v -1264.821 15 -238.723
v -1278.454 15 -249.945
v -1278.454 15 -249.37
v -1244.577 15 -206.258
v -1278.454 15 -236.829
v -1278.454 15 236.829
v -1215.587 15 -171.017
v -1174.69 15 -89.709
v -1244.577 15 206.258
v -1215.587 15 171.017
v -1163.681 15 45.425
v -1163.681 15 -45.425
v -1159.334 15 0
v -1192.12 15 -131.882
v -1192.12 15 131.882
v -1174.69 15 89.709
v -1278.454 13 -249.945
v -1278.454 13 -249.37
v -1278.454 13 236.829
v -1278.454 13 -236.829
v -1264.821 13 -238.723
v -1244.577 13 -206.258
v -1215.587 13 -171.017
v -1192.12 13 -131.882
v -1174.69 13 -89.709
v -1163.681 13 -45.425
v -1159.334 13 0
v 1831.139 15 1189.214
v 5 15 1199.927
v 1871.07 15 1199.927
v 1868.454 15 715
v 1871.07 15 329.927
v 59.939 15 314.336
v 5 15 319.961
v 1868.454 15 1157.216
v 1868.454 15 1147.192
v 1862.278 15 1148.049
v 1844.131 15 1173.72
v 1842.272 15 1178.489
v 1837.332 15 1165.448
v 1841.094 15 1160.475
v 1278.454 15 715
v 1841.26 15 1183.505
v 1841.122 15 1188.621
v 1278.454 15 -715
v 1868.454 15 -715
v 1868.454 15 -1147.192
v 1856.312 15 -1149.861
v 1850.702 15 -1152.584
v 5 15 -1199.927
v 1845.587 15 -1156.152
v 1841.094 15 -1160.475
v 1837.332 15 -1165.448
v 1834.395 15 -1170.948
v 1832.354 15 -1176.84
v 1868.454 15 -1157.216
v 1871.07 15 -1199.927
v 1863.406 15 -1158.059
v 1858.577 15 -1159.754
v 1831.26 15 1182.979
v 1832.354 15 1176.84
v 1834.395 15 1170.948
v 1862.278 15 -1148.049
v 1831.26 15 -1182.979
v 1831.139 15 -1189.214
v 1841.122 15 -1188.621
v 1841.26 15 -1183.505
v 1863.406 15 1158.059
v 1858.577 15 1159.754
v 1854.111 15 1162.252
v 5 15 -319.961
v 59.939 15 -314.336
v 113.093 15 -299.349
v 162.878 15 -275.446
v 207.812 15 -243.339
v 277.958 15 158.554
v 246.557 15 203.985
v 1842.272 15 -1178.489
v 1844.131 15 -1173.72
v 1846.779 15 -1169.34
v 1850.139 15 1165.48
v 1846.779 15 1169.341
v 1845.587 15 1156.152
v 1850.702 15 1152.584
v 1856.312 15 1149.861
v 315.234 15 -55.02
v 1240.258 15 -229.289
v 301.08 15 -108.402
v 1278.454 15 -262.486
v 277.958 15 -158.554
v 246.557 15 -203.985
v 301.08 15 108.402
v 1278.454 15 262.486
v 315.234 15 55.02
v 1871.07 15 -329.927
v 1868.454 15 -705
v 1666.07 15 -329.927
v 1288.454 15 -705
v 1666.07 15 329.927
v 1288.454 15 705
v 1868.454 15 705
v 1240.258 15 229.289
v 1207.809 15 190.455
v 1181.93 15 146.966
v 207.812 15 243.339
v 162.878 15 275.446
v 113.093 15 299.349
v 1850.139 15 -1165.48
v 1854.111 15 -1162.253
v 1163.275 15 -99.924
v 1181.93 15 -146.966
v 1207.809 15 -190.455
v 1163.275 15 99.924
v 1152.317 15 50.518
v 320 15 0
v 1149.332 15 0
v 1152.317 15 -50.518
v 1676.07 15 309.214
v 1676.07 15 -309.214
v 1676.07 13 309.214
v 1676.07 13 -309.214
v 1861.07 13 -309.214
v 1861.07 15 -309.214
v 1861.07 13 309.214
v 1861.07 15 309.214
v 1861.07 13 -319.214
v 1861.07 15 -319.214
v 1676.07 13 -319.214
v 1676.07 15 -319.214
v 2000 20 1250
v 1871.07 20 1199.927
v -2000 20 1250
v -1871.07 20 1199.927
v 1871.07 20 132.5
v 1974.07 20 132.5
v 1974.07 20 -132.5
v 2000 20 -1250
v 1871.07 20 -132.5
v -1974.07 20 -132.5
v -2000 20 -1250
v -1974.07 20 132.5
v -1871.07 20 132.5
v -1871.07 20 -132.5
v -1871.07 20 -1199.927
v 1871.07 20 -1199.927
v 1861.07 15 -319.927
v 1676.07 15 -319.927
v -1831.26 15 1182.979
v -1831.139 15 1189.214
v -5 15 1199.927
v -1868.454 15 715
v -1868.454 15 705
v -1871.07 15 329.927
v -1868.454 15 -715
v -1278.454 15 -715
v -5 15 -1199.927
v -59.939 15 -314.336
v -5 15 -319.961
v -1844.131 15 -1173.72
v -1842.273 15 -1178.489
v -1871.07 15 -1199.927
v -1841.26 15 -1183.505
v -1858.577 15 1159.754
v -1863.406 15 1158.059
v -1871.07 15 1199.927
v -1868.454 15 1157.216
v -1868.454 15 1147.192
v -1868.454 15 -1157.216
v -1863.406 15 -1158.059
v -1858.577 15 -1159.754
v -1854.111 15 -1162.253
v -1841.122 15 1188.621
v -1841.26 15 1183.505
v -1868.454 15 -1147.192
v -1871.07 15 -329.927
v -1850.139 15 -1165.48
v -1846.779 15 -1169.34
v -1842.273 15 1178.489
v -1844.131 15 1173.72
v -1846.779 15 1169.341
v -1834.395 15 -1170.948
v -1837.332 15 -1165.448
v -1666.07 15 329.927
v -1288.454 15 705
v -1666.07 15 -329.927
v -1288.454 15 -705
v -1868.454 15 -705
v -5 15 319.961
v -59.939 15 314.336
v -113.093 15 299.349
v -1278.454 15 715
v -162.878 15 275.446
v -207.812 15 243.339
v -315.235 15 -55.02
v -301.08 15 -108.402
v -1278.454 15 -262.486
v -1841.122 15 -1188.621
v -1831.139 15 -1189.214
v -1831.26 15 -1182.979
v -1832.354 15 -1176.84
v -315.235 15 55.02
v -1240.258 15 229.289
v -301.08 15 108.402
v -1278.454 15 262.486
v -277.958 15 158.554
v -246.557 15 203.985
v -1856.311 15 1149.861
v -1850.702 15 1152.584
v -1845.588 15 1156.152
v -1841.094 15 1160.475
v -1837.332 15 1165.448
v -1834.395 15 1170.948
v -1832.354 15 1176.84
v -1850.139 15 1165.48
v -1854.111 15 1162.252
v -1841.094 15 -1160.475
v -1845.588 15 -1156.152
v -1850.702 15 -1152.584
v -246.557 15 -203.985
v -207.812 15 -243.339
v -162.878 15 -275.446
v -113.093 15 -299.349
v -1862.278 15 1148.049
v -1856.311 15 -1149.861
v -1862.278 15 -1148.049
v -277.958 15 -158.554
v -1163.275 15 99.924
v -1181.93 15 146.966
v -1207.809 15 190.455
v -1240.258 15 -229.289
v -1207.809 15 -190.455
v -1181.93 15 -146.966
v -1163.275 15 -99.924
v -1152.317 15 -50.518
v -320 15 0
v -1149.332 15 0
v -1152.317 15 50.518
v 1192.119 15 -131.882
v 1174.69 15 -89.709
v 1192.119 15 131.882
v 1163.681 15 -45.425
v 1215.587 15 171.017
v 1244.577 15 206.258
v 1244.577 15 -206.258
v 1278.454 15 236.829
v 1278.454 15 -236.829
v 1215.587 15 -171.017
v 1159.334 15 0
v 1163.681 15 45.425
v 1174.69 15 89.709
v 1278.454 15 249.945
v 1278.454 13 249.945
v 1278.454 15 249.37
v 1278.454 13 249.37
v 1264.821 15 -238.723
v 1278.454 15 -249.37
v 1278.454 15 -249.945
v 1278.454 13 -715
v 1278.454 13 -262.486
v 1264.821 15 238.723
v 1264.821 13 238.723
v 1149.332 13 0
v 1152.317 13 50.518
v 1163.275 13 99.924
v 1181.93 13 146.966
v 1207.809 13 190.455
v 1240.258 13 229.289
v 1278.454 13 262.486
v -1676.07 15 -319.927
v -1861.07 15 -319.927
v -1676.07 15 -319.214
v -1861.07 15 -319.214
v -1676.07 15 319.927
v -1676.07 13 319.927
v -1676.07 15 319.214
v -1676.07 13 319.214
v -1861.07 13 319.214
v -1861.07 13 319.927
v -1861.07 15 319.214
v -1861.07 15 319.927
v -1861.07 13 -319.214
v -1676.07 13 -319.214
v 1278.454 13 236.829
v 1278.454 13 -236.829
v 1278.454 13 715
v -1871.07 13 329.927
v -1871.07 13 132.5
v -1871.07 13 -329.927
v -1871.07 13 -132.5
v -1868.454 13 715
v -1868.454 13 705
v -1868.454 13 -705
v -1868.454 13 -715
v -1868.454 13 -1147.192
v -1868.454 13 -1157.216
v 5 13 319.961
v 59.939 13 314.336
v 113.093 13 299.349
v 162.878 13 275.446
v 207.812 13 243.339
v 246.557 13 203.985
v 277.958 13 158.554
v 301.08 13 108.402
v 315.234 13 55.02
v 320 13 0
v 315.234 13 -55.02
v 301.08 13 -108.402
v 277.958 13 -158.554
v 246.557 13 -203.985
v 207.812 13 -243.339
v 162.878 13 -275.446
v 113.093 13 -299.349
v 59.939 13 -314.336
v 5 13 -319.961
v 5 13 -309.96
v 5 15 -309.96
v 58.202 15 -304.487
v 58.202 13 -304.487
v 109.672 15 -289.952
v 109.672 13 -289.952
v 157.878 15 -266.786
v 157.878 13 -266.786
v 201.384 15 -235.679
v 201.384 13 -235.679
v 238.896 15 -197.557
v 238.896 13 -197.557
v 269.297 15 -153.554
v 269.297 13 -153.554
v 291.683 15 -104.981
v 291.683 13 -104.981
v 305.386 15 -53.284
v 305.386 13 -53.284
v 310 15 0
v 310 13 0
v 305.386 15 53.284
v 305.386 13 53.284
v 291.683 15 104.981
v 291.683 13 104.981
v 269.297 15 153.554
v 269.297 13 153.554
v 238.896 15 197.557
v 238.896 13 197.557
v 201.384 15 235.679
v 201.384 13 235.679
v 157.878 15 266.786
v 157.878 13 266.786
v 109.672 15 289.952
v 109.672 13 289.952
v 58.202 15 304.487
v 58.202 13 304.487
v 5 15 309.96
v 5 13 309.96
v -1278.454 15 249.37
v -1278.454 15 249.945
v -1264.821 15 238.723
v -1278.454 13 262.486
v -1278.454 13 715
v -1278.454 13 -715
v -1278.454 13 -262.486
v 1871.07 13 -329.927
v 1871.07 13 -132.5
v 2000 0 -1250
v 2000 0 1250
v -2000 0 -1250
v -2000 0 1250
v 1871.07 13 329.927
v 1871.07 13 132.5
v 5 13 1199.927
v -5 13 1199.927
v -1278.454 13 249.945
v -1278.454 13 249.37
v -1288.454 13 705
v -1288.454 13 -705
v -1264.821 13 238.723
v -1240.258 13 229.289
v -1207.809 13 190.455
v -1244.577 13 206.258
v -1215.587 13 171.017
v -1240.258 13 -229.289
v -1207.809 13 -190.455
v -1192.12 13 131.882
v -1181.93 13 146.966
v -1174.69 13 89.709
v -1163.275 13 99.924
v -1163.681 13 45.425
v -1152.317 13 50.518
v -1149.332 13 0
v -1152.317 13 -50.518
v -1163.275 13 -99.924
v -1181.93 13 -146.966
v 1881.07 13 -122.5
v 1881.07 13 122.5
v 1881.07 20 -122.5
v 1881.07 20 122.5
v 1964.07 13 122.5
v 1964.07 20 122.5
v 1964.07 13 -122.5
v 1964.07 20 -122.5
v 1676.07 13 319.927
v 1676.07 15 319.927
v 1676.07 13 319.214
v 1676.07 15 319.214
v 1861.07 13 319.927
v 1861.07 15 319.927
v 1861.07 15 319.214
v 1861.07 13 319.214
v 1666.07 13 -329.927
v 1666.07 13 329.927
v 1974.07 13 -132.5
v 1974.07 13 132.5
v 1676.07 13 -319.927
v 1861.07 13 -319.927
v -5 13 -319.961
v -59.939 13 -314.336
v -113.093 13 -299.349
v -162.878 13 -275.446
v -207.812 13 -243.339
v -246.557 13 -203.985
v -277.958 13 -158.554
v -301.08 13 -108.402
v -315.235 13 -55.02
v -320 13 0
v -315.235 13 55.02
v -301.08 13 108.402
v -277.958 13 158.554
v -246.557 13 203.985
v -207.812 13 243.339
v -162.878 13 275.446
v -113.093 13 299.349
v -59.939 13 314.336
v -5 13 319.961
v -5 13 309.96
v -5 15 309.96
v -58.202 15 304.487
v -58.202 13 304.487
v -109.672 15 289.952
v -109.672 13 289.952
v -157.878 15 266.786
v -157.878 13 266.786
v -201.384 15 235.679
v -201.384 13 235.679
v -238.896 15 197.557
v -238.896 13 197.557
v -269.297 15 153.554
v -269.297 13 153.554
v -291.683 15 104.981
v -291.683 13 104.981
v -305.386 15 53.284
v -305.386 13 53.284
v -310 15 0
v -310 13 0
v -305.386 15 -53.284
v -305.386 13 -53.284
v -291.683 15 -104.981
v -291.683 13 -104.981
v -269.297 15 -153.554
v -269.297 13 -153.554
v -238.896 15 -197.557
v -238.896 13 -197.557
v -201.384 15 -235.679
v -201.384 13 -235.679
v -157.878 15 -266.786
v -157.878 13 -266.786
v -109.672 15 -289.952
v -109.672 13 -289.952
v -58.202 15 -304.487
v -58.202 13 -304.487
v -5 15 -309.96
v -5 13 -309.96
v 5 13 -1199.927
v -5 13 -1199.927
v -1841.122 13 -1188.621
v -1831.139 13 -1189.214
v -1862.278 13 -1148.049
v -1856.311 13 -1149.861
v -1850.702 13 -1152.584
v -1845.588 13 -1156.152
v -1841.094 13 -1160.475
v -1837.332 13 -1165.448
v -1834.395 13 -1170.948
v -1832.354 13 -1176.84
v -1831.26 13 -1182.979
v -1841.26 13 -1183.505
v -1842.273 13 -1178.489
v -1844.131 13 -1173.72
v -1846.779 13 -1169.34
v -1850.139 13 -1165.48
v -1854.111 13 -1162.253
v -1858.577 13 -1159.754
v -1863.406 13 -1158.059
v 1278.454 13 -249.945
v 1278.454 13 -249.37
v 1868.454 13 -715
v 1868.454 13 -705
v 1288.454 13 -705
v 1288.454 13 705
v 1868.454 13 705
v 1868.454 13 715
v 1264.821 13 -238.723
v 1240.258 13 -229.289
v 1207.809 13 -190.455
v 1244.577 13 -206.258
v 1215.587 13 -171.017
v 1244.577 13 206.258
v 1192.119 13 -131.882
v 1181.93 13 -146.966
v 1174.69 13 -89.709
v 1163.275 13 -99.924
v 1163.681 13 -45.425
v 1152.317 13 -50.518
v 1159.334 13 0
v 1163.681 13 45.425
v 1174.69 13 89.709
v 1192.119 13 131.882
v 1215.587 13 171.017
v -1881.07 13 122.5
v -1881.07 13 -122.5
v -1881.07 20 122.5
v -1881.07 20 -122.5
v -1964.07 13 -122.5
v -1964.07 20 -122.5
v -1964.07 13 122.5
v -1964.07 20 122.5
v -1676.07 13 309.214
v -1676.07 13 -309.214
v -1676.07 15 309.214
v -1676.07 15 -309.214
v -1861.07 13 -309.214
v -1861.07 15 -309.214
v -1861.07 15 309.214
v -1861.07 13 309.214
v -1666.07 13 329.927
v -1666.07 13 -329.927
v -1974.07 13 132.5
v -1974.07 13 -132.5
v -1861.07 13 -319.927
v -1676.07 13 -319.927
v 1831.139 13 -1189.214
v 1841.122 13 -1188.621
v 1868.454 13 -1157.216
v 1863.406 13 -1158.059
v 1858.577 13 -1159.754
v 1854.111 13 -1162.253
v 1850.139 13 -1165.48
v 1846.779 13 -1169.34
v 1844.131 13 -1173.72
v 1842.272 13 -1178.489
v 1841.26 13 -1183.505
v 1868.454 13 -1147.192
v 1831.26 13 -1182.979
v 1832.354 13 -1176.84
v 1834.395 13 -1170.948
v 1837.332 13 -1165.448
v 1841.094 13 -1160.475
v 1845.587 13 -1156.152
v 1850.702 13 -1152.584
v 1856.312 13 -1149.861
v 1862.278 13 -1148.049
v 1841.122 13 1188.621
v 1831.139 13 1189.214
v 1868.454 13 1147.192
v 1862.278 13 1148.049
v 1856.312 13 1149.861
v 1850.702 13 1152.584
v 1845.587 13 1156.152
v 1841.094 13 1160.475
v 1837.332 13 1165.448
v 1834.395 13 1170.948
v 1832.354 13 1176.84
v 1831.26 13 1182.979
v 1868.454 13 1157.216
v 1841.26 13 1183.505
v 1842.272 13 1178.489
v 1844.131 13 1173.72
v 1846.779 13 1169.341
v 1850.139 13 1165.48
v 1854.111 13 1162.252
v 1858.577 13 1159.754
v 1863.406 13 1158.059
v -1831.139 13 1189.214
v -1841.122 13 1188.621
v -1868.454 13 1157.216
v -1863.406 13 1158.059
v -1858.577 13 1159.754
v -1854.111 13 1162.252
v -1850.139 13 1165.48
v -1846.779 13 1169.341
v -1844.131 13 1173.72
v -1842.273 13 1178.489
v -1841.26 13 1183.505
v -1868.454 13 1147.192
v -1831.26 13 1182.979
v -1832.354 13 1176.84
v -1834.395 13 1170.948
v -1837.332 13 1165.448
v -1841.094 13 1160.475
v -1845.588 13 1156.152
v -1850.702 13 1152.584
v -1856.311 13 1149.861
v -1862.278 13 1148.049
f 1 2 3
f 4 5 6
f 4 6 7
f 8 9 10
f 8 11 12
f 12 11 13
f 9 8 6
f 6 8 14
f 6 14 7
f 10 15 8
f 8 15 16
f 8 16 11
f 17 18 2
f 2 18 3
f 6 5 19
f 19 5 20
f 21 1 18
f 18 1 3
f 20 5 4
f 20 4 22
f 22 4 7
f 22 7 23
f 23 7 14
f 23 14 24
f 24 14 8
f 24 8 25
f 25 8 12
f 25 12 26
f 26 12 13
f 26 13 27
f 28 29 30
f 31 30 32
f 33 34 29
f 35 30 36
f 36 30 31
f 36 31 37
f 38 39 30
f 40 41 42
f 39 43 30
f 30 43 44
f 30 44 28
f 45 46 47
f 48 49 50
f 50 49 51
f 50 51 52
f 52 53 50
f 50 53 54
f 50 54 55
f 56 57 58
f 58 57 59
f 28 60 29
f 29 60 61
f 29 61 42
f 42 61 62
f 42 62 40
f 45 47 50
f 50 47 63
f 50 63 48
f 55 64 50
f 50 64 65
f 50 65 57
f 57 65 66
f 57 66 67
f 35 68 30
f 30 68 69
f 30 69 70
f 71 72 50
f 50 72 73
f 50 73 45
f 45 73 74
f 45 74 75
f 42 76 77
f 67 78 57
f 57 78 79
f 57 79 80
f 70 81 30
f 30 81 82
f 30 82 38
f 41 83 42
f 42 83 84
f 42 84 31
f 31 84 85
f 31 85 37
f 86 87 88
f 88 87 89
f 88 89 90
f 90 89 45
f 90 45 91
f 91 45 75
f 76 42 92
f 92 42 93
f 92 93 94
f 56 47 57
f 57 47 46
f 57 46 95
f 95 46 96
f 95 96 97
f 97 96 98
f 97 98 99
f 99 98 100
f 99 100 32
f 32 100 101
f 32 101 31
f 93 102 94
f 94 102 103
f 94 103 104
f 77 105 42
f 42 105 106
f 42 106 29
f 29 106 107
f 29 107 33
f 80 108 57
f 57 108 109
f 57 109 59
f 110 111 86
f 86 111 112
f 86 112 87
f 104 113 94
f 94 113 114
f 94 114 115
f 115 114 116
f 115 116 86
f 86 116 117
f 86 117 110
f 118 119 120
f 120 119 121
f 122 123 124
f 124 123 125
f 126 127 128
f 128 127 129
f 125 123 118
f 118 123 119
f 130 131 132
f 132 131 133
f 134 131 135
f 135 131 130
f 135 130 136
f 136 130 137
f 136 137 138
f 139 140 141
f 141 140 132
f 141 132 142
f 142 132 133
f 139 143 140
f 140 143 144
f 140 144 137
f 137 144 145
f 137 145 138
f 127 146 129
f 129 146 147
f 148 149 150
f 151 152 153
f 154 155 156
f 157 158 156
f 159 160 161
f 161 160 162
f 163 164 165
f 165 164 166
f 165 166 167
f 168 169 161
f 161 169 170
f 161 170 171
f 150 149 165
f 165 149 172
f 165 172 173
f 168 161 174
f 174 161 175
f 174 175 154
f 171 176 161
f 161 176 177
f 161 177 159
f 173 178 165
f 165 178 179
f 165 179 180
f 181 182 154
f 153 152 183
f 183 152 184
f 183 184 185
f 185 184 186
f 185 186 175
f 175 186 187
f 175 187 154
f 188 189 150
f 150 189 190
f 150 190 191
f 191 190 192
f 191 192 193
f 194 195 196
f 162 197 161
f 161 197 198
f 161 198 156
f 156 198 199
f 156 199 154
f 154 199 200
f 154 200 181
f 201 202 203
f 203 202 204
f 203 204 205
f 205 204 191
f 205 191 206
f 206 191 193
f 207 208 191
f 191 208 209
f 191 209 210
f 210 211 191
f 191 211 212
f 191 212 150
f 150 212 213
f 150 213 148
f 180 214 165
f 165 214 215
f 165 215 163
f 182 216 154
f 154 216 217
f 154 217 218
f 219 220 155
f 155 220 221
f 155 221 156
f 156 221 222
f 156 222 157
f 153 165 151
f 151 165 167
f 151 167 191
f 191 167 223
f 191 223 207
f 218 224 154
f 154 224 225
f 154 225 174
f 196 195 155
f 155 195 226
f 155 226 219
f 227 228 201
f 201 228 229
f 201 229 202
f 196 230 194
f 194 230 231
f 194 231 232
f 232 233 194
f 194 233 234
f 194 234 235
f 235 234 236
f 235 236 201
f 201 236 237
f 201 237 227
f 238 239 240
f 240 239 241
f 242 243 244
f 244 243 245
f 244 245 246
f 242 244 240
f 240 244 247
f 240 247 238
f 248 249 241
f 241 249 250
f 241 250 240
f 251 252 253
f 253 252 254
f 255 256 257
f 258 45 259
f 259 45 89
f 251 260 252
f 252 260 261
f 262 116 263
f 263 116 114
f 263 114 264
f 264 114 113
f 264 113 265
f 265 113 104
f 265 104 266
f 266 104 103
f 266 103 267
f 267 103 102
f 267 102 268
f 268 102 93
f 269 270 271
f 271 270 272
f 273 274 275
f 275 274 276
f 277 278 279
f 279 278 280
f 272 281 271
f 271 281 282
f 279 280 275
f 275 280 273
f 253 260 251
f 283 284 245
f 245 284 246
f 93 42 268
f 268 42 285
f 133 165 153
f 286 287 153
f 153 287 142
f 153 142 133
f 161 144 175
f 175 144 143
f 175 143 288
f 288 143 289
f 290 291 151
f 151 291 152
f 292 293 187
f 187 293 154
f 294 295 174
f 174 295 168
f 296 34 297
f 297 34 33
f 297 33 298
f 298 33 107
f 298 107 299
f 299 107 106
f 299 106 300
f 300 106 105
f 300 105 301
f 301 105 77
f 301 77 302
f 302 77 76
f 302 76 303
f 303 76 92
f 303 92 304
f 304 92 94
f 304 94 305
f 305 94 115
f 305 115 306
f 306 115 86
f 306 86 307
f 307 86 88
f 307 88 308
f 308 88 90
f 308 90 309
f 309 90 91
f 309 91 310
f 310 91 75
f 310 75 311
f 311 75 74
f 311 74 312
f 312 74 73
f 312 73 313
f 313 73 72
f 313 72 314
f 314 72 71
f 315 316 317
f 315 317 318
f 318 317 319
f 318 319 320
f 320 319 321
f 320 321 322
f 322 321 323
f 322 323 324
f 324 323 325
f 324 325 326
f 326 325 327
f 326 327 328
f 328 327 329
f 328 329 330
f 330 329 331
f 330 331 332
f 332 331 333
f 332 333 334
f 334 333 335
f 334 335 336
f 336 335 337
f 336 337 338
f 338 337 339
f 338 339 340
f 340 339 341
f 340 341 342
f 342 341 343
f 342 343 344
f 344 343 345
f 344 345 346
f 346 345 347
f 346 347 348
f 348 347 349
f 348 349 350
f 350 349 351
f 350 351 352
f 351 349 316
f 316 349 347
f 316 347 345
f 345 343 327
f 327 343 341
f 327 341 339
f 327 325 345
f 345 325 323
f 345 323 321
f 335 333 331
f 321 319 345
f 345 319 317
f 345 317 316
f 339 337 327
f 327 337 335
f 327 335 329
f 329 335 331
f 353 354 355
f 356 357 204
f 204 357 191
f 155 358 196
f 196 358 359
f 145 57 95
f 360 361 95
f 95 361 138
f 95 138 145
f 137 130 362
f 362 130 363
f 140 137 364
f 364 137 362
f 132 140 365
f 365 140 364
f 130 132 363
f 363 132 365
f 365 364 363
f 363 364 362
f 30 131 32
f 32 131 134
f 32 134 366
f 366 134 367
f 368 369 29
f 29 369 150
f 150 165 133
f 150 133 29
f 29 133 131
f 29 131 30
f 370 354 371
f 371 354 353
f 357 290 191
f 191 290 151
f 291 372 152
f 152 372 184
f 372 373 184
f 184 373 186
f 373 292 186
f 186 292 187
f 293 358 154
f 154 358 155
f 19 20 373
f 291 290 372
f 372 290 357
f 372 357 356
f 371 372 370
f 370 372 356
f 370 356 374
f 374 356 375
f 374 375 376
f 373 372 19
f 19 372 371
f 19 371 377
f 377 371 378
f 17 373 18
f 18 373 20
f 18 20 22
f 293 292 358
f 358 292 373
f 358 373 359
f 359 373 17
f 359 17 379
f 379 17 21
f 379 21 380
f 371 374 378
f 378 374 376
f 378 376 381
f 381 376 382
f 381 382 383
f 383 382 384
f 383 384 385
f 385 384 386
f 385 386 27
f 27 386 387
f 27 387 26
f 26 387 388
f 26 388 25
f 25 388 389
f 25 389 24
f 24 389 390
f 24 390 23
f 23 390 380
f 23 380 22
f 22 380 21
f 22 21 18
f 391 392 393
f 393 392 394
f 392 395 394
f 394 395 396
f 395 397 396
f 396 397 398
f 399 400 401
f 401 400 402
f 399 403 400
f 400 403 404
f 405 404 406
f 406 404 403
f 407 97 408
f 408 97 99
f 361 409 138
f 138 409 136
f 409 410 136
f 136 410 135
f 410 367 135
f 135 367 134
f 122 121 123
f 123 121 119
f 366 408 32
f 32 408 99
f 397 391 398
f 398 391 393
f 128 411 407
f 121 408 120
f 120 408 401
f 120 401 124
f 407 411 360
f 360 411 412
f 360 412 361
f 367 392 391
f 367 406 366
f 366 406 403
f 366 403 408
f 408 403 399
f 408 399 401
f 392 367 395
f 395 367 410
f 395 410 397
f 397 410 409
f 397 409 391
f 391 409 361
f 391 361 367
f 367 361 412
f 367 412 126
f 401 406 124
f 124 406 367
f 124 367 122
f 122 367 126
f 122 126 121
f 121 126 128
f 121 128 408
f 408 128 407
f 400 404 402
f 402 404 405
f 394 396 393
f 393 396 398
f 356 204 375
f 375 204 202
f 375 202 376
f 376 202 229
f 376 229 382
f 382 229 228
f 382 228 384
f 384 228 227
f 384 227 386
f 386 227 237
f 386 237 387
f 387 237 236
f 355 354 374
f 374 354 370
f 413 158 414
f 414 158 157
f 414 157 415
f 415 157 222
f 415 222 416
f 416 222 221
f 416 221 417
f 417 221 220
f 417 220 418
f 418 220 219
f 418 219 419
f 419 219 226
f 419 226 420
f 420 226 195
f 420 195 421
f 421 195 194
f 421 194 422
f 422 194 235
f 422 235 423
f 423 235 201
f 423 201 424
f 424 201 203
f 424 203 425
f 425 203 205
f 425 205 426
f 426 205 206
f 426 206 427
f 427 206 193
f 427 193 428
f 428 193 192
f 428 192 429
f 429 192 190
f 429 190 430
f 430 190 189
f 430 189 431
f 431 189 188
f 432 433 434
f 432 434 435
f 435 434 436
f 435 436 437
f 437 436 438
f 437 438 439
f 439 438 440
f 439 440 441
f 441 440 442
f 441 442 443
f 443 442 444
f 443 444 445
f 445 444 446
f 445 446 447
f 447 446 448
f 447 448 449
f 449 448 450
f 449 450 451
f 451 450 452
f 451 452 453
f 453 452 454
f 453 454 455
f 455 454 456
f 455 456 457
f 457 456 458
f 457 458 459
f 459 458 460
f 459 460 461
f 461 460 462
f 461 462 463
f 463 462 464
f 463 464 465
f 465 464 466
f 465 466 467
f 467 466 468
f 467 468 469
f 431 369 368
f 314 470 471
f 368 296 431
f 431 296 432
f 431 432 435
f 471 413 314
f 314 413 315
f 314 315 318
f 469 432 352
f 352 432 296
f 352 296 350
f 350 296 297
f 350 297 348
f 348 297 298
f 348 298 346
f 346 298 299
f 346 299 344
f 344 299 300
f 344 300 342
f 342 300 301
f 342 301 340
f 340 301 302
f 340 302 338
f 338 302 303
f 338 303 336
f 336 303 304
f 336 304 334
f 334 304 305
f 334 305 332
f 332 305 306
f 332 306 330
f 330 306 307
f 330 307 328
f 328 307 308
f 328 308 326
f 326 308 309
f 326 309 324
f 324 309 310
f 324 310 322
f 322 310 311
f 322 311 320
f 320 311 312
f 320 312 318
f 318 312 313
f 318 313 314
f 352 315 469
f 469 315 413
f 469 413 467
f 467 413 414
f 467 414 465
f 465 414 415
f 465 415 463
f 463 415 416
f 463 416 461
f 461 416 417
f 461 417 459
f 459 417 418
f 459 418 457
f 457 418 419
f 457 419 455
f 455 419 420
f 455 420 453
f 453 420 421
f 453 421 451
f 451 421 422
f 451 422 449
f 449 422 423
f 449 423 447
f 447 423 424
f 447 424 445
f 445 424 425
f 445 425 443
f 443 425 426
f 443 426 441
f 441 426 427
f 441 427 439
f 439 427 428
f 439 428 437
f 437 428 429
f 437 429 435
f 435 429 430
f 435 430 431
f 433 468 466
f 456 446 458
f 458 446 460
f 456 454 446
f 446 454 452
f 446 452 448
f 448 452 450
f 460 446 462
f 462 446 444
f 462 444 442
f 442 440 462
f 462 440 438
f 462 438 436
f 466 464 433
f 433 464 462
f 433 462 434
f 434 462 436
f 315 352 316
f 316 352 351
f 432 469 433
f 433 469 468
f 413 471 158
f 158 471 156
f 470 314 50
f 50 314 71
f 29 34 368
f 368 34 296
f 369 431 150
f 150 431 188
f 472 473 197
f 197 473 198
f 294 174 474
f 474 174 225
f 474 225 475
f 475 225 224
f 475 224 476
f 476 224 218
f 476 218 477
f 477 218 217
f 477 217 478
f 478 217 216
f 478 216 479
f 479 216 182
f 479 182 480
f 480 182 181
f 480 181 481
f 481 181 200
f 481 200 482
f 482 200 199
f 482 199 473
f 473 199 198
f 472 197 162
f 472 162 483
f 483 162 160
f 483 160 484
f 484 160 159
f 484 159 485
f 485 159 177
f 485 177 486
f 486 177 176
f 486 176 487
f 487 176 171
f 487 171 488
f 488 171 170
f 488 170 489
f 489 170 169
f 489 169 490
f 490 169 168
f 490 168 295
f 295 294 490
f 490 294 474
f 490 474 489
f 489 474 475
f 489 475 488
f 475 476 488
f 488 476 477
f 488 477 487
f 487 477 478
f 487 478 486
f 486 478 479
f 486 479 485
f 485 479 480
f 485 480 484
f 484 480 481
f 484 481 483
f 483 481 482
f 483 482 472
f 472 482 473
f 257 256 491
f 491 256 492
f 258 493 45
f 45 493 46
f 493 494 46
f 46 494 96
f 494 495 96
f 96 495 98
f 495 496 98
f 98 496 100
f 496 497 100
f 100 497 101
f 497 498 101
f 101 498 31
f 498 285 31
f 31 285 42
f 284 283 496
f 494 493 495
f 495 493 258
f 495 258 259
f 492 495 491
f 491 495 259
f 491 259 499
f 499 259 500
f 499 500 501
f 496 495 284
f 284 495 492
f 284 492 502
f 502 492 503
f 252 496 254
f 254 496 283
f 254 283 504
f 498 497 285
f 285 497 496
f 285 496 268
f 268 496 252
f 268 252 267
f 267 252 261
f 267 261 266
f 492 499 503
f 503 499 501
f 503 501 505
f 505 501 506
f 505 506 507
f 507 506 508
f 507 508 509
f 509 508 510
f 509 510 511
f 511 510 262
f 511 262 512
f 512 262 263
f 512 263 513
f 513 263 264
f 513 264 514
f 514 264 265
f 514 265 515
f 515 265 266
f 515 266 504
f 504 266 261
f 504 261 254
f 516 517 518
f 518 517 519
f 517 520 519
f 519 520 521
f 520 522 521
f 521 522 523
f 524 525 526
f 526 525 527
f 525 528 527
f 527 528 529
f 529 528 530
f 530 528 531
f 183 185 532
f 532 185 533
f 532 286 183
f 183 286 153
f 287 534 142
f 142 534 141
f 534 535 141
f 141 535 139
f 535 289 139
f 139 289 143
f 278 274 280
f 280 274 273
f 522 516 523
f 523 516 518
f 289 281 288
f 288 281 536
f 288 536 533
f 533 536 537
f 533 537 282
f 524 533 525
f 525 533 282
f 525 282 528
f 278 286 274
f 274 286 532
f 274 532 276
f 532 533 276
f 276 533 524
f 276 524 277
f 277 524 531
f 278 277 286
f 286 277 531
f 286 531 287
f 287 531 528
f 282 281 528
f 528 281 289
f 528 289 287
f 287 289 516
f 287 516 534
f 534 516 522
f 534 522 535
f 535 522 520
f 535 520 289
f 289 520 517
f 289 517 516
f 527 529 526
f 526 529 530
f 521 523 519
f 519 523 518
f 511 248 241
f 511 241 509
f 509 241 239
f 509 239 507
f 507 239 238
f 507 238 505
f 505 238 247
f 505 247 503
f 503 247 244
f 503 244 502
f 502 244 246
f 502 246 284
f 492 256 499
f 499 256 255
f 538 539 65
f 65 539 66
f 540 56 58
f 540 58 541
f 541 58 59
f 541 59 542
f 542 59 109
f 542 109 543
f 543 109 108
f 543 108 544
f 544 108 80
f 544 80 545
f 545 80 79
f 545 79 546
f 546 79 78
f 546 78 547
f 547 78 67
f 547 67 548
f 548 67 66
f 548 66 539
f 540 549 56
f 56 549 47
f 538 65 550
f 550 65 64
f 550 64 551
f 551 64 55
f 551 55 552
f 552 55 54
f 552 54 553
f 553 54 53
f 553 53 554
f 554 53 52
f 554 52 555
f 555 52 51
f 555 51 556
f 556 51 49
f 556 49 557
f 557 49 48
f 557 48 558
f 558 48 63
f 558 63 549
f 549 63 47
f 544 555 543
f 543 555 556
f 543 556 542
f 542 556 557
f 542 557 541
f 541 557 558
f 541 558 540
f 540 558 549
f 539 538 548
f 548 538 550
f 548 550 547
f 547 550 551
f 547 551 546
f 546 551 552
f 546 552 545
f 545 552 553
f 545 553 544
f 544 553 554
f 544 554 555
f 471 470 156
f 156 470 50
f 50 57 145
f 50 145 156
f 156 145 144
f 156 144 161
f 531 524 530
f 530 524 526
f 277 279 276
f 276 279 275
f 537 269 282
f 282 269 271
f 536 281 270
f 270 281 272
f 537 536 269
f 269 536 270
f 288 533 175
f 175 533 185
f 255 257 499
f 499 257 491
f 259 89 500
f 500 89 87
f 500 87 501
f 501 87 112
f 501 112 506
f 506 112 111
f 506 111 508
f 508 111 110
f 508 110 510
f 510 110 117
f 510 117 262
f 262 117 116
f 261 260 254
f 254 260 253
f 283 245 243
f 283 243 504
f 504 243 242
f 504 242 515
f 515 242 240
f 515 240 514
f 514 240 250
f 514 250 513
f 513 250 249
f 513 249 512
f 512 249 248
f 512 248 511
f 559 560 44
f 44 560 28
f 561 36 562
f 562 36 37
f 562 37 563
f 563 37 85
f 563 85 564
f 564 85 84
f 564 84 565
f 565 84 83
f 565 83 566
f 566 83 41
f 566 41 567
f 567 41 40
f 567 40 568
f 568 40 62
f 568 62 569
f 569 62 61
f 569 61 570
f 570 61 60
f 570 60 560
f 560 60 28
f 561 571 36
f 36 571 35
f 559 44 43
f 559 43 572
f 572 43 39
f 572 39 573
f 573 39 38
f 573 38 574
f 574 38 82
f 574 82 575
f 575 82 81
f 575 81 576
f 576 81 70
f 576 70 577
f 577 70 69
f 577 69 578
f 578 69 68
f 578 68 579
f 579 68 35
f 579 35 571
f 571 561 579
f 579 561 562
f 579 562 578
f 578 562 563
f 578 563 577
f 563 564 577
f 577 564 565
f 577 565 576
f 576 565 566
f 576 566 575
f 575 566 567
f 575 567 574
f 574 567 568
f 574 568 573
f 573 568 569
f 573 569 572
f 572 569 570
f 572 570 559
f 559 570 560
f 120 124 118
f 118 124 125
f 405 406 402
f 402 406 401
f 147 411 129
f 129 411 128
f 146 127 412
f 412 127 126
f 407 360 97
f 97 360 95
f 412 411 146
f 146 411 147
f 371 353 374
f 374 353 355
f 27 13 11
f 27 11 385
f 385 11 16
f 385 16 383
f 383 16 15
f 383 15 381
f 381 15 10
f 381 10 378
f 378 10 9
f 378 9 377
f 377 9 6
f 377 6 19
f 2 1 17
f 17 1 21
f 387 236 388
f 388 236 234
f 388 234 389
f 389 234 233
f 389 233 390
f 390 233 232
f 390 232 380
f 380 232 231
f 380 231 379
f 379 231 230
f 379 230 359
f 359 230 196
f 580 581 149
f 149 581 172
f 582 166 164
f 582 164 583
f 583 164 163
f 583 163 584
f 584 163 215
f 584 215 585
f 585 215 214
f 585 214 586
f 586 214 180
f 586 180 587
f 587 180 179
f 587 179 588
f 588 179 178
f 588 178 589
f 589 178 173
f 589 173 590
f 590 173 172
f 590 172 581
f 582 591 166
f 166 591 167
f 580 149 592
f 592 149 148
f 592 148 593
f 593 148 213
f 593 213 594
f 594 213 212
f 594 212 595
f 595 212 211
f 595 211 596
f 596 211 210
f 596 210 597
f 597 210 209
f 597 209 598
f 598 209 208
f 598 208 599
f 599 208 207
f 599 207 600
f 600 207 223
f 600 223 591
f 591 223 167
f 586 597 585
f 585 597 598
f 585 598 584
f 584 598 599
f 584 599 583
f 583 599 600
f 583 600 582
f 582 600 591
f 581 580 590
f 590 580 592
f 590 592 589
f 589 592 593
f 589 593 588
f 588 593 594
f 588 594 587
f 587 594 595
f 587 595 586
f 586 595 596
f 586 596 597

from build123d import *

# Parameters (mm, degrees)
SKETCH_1_W                  = 4000
SKETCH_1_H                  = 2500
EXTRUDE_1_DEPTH             = 20
SKETCH_3_W                  = 3739.524544905
SKETCH_3_H                  = 2389.140681467
CUT_EXTRUDE_1_DEPTH         = 5
CUT_EXTRUDE_3_DEPTH         = 2
SKETCH_5_W                  = 185
SKETCH_5_H                  = 629.140681467
SKETCH_5_W_2                = 83
SKETCH_5_H_2                = 245
CUT_EXTRUDE_5_DEPTH         = 2
SKETCH_7_W                  = 103
SKETCH_7_H                  = 265
SKETCH_7_W_2                = 83
SKETCH_7_H_2                = 245
CUT_EXTRUDE_6_DEPTH         = 5
CUT_EXTRUDE_16_DEPTH        = 2
SKETCH_9_3_R                = 320
SKETCH_9_3_R_2              = 310
CUT_EXTRUDE_17_DEPTH        = 2
CUT_EXTRUDE_18_DEPTH        = 2
MIRROR_3_COPY_1_SKETCH_W    = 3739.524544905
MIRROR_3_COPY_1_SKETCH_H    = 2389.140681467
MIRROR_3_COPY_1_DEPTH       = 5
MIRROR_3_COPY_2_DEPTH       = 2
MIRROR_3_COPY_3_SKETCH_W    = 185
MIRROR_3_COPY_3_SKETCH_H    = 629.140681467
MIRROR_3_COPY_3_SKETCH_W_2  = 83
MIRROR_3_COPY_3_SKETCH_H_2  = 245
MIRROR_3_COPY_3_DEPTH       = 2
MIRROR_3_COPY_4_SKETCH_W    = 103
MIRROR_3_COPY_4_SKETCH_H    = 265
MIRROR_3_COPY_4_SKETCH_W_2  = 83
MIRROR_3_COPY_4_SKETCH_H_2  = 245
MIRROR_3_COPY_4_DEPTH       = 5
MIRROR_3_COPY_5_DEPTH       = 2
MIRROR_3_COPY_6_SKETCH_R    = 320
MIRROR_3_COPY_6_SKETCH_R_2  = 310
MIRROR_3_COPY_6_DEPTH       = 2
MIRROR_3_COPY_7_DEPTH       = 2
MIRROR_3_COPY_8_SKETCH_W    = 3739.524544905
MIRROR_3_COPY_8_SKETCH_H    = 2389.140681467
MIRROR_3_COPY_8_DEPTH       = 5
MIRROR_3_COPY_9_DEPTH       = 2
MIRROR_3_COPY_10_SKETCH_W   = 185
MIRROR_3_COPY_10_SKETCH_H   = 629.140681467
MIRROR_3_COPY_10_SKETCH_W_2 = 83
MIRROR_3_COPY_10_SKETCH_H_2 = 245
MIRROR_3_COPY_10_DEPTH      = 2
MIRROR_3_COPY_11_SKETCH_W   = 103
MIRROR_3_COPY_11_SKETCH_H   = 265
MIRROR_3_COPY_11_SKETCH_W_2 = 83
MIRROR_3_COPY_11_SKETCH_H_2 = 245
MIRROR_3_COPY_11_DEPTH      = 5
MIRROR_3_COPY_12_DEPTH      = 2
MIRROR_3_COPY_13_SKETCH_R   = 320
MIRROR_3_COPY_13_SKETCH_R_2 = 310
MIRROR_3_COPY_13_DEPTH      = 2
MIRROR_3_COPY_14_DEPTH      = 2


with BuildPart() as part:
    # 草圖1 → 填料-伸長1 (new body)
    with BuildSketch(Plane(origin=(0, 0, 0), x_dir=(1, 0, 0), z_dir=(0, 1, 0))):
        Rectangle(SKETCH_1_W, SKETCH_1_H)
    extrude(amount=EXTRUDE_1_DEPTH)

    # 草圖3 → 除料-伸長1 (cut)
    with BuildSketch(Plane(origin=(0, 20, 0), x_dir=(1, 0, 0), z_dir=(0, 1, 0))):
        with Locations((1.30793571, -5.356728769)):
            Rectangle(SKETCH_3_W, SKETCH_3_H)
    cut_extrude_1 = extrude(amount=-CUT_EXTRUDE_1_DEPTH, mode=Mode.SUBTRACT)

    # 草圖4 → 除料-伸長3 (cut)
    with BuildSketch(Plane(origin=(0, 15, 0), x_dir=(1, 0, 0), z_dir=(0, 1, 0))):
        Polygon((-1868.454336743, 715), (-1288.454336743, 715), (-1278.454336743, 715), (-1278.454336743, -715), (-1868.454336743, -715), (-1868.454336743, -705), (-1288.454336743, -705), (-1288.454336743, 705), (-1868.454336743, 705), align=None)
    cut_extrude_3 = extrude(amount=-CUT_EXTRUDE_3_DEPTH, mode=Mode.SUBTRACT)

    # 草圖5 → 除料-伸長5 (cut)
    with BuildSketch(Plane(origin=(0, 15, 0), x_dir=(1, 0, 0), z_dir=(0, 1, 0))):
        Polygon((1871.070208162, 319.213611964), (1666.070208162, 319.213611964), (1666.070208162, -329.927069503), (1871.070208162, -329.927069503), (1871.070208162, -132.5), (1974.070208162, -132.5), (1974.070208162, 132.5), (1871.070208162, 132.5), align=None)
        with Locations((1768.570208162, -5.35672877)):
            Rectangle(SKETCH_5_W, SKETCH_5_H, mode=Mode.SUBTRACT)
        with Locations((1922.570208162, 0)):
            Rectangle(SKETCH_5_W_2, SKETCH_5_H_2, mode=Mode.SUBTRACT)
    cut_extrude_5 = extrude(amount=-CUT_EXTRUDE_5_DEPTH, mode=Mode.SUBTRACT)

    # 草圖7 → 除料-伸長6 (cut)
    with BuildSketch(Plane(origin=(0, 20, 0), x_dir=(1, 0, 0), z_dir=(0, 1, 0))):
        with Locations((1922.570208162, 0)):
            Rectangle(SKETCH_7_W, SKETCH_7_H)
        with Locations((1922.570208162, 0)):
            Rectangle(SKETCH_7_W_2, SKETCH_7_H_2, mode=Mode.SUBTRACT)
    cut_extrude_6 = extrude(amount=-CUT_EXTRUDE_6_DEPTH, mode=Mode.SUBTRACT)

    # 草圖9 → 除料-伸長16 (cut)
    with BuildSketch(Plane(origin=(0, 15, 0), x_dir=(1, 0, 0), z_dir=(0, 1, 0))):
        with BuildLine():
            ThreePointArc((-1278.454336743, -262.485638384), (-1149.264370393, -6.557696493), (-1278.454336743, 249.370245398))
            Line((-1278.454336743, 249.370245398), (-1278.454336743, 236.829294479))
            ThreePointArc((-1278.454336743, 236.829294479), (-1159.264370393, -6.557696493), (-1278.454336743, -249.944687465))
            Line((-1278.454336743, -249.944687465), (-1278.454336743, -262.485638384))
        make_face()
    cut_extrude_16 = extrude(amount=-CUT_EXTRUDE_16_DEPTH, mode=Mode.SUBTRACT)

    # 草圖9<3> → 除料-伸長17 (cut)
    with BuildSketch(Plane(origin=(0, 15, 0), x_dir=(1, 0, 0), z_dir=(0, 1, 0))):
        Circle(SKETCH_9_3_R)
        Circle(SKETCH_9_3_R_2, mode=Mode.SUBTRACT)
    cut_extrude_17 = extrude(amount=-CUT_EXTRUDE_17_DEPTH, mode=Mode.SUBTRACT)

    # 草圖9<4> → 除料-伸長18 (cut)
    with BuildSketch(Plane(origin=(0, 15, 0), x_dir=(1, 0, 0), z_dir=(0, 1, 0))):
        with BuildLine():
            ThreePointArc((-1868.454336743, 1147.192515671), (-1841.094059669, 1160.474906139), (-1831.139490585, 1189.213611964))
            Line((-1831.139490585, 1189.213611964), (-1841.121942258, 1188.621447643))
            ThreePointArc((-1841.121942258, 1188.621447643), (-1848.37548107, 1167.337749028), (-1868.454336743, 1157.216029468))
            Line((-1868.454336743, 1157.216029468), (-1868.454336743, 1147.192515671))
        make_face()
        with BuildLine():
            Line((5, 319.960935116), (5, 1189.213611964))
            Line((5, 1189.213611964), (-5, 1189.213611964))
            Line((-5, 1189.213611964), (-5, 319.960935116))
            ThreePointArc((-5, 319.960935116), (0, 320), (5, 319.960935116))
        make_face()
        with BuildLine():
            Line((5, -309.959674797), (5, 309.959674797))
            ThreePointArc((5, 309.959674797), (0, 310), (-5, 309.959674797))
            Line((-5, 309.959674797), (-5, -309.959674797))
            ThreePointArc((-5, -309.959674797), (0, -310), (5, -309.959674797))
        make_face()
        with BuildLine():
            ThreePointArc((5, -319.960935116), (0, -320), (-5, -319.960935116))
            Line((-5, -319.960935116), (-5, -1199.927069503))
            Line((-5, -1199.927069503), (5, -1199.927069503))
            Line((5, -1199.927069503), (5, -319.960935116))
        make_face()
    cut_extrude_18 = extrude(amount=-CUT_EXTRUDE_18_DEPTH, mode=Mode.SUBTRACT)

    # 鏡射1: 除料-伸長1, 除料-伸長3, 除料-伸長5, 除料-伸長6, 除料-伸長16, 除料-伸長17, 除料-伸長18 across plane
    add(cut_extrude_1.mirror(Plane(origin=(0, 0, 0), x_dir=(0, 0, 1), z_dir=(1, 0, 0))), mode=Mode.SUBTRACT)
    add(cut_extrude_3.mirror(Plane(origin=(0, 0, 0), x_dir=(0, 0, 1), z_dir=(1, 0, 0))), mode=Mode.SUBTRACT)
    add(cut_extrude_5.mirror(Plane(origin=(0, 0, 0), x_dir=(0, 0, 1), z_dir=(1, 0, 0))), mode=Mode.SUBTRACT)
    add(cut_extrude_6.mirror(Plane(origin=(0, 0, 0), x_dir=(0, 0, 1), z_dir=(1, 0, 0))), mode=Mode.SUBTRACT)
    add(cut_extrude_16.mirror(Plane(origin=(0, 0, 0), x_dir=(0, 0, 1), z_dir=(1, 0, 0))), mode=Mode.SUBTRACT)
    add(cut_extrude_17.mirror(Plane(origin=(0, 0, 0), x_dir=(0, 0, 1), z_dir=(1, 0, 0))), mode=Mode.SUBTRACT)
    add(cut_extrude_18.mirror(Plane(origin=(0, 0, 0), x_dir=(0, 0, 1), z_dir=(1, 0, 0))), mode=Mode.SUBTRACT)

    # 鏡射3 copy 1 sketch → 鏡射3 copy 1 (cut)
    with BuildSketch(Plane(origin=(0, 20, 0), x_dir=(-1, 0, 0), z_dir=(0, 1, 0))):
        with Locations((1.30793571, -5.356728769)):
            Rectangle(MIRROR_3_COPY_1_SKETCH_W, MIRROR_3_COPY_1_SKETCH_H)
    extrude(amount=-MIRROR_3_COPY_1_DEPTH, mode=Mode.SUBTRACT)

    # 鏡射3 copy 2 sketch → 鏡射3 copy 2 (cut)
    with BuildSketch(Plane(origin=(0, 15, 0), x_dir=(-1, 0, 0), z_dir=(0, 1, 0))):
        Polygon((-1868.454336743, 715), (-1288.454336743, 715), (-1278.454336743, 715), (-1278.454336743, -715), (-1868.454336743, -715), (-1868.454336743, -705), (-1288.454336743, -705), (-1288.454336743, 705), (-1868.454336743, 705), align=None)
    extrude(amount=-MIRROR_3_COPY_2_DEPTH, mode=Mode.SUBTRACT)

    # 鏡射3 copy 3 sketch → 鏡射3 copy 3 (cut)
    with BuildSketch(Plane(origin=(0, 15, 0), x_dir=(-1, 0, 0), z_dir=(0, 1, 0))):
        Polygon((1871.070208162, 319.213611964), (1666.070208162, 319.213611964), (1666.070208162, -329.927069503), (1871.070208162, -329.927069503), (1871.070208162, -132.5), (1974.070208162, -132.5), (1974.070208162, 132.5), (1871.070208162, 132.5), align=None)
        with Locations((1768.570208162, -5.35672877)):
            Rectangle(MIRROR_3_COPY_3_SKETCH_W, MIRROR_3_COPY_3_SKETCH_H, mode=Mode.SUBTRACT)
        with Locations((1922.570208162, 0)):
            Rectangle(MIRROR_3_COPY_3_SKETCH_W_2, MIRROR_3_COPY_3_SKETCH_H_2, mode=Mode.SUBTRACT)
    extrude(amount=-MIRROR_3_COPY_3_DEPTH, mode=Mode.SUBTRACT)

    # 鏡射3 copy 4 sketch → 鏡射3 copy 4 (cut)
    with BuildSketch(Plane(origin=(0, 20, 0), x_dir=(-1, 0, 0), z_dir=(0, 1, 0))):
        with Locations((1922.570208162, 0)):
            Rectangle(MIRROR_3_COPY_4_SKETCH_W, MIRROR_3_COPY_4_SKETCH_H)
        with Locations((1922.570208162, 0)):
            Rectangle(MIRROR_3_COPY_4_SKETCH_W_2, MIRROR_3_COPY_4_SKETCH_H_2, mode=Mode.SUBTRACT)
    extrude(amount=-MIRROR_3_COPY_4_DEPTH, mode=Mode.SUBTRACT)

    # 鏡射3 copy 5 sketch → 鏡射3 copy 5 (cut)
    with BuildSketch(Plane(origin=(0, 15, 0), x_dir=(-1, 0, 0), z_dir=(0, 1, 0))):
        with BuildLine():
            ThreePointArc((-1278.454336743, -262.485638384), (-1149.264370393, -6.557696493), (-1278.454336743, 249.370245398))
            Line((-1278.454336743, 249.370245398), (-1278.454336743, 236.829294479))
            ThreePointArc((-1278.454336743, 236.829294479), (-1159.264370393, -6.557696493), (-1278.454336743, -249.944687465))
            Line((-1278.454336743, -249.944687465), (-1278.454336743, -262.485638384))
        make_face()
    extrude(amount=-MIRROR_3_COPY_5_DEPTH, mode=Mode.SUBTRACT)

    # 鏡射3 copy 6 sketch → 鏡射3 copy 6 (cut)
    with BuildSketch(Plane(origin=(0, 15, 0), x_dir=(-1, 0, 0), z_dir=(0, 1, 0))):
        Circle(MIRROR_3_COPY_6_SKETCH_R)
        Circle(MIRROR_3_COPY_6_SKETCH_R_2, mode=Mode.SUBTRACT)
    extrude(amount=-MIRROR_3_COPY_6_DEPTH, mode=Mode.SUBTRACT)

    # 鏡射3 copy 7 sketch → 鏡射3 copy 7 (cut)
    with BuildSketch(Plane(origin=(0, 15, 0), x_dir=(-1, 0, 0), z_dir=(0, 1, 0))):
        with BuildLine():
            ThreePointArc((-1868.454336743, 1147.192515671), (-1841.094059669, 1160.474906139), (-1831.139490585, 1189.213611964))
            Line((-1831.139490585, 1189.213611964), (-1841.121942258, 1188.621447643))
            ThreePointArc((-1841.121942258, 1188.621447643), (-1848.37548107, 1167.337749028), (-1868.454336743, 1157.216029468))
            Line((-1868.454336743, 1157.216029468), (-1868.454336743, 1147.192515671))
        make_face()
        with BuildLine():
            Line((5, 319.960935116), (5, 1189.213611964))
            Line((5, 1189.213611964), (-5, 1189.213611964))
            Line((-5, 1189.213611964), (-5, 319.960935116))
            ThreePointArc((-5, 319.960935116), (0, 320), (5, 319.960935116))
        make_face()
        with BuildLine():
            Line((5, -309.959674797), (5, 309.959674797))
            ThreePointArc((5, 309.959674797), (0, 310), (-5, 309.959674797))
            Line((-5, 309.959674797), (-5, -309.959674797))
            ThreePointArc((-5, -309.959674797), (0, -310), (5, -309.959674797))
        make_face()
        with BuildLine():
            ThreePointArc((5, -319.960935116), (0, -320), (-5, -319.960935116))
            Line((-5, -319.960935116), (-5, -1199.927069503))
            Line((-5, -1199.927069503), (5, -1199.927069503))
            Line((5, -1199.927069503), (5, -319.960935116))
        make_face()
    extrude(amount=-MIRROR_3_COPY_7_DEPTH, mode=Mode.SUBTRACT)

    # 鏡射3 copy 8 sketch → 鏡射3 copy 8 (cut)
    with BuildSketch(Plane(origin=(0, 20, 0), x_dir=(1, 0, 0), z_dir=(0, 1, 0))):
        with Locations((1.30793571, 5.356728769)):
            Rectangle(MIRROR_3_COPY_8_SKETCH_W, MIRROR_3_COPY_8_SKETCH_H)
    extrude(amount=-MIRROR_3_COPY_8_DEPTH, mode=Mode.SUBTRACT)

    # 鏡射3 copy 9 sketch → 鏡射3 copy 9 (cut)
    with BuildSketch(Plane(origin=(0, 15, 0), x_dir=(1, 0, 0), z_dir=(0, 1, 0))):
        Polygon((-1868.454336743, -715), (-1288.454336743, -715), (-1278.454336743, -715), (-1278.454336743, 715), (-1868.454336743, 715), (-1868.454336743, 705), (-1288.454336743, 705), (-1288.454336743, -705), (-1868.454336743, -705), align=None)
    extrude(amount=-MIRROR_3_COPY_9_DEPTH, mode=Mode.SUBTRACT)

    # 鏡射3 copy 10 sketch → 鏡射3 copy 10 (cut)
    with BuildSketch(Plane(origin=(0, 15, 0), x_dir=(1, 0, 0), z_dir=(0, 1, 0))):
        Polygon((1871.070208162, -319.213611964), (1666.070208162, -319.213611964), (1666.070208162, 329.927069503), (1871.070208162, 329.927069503), (1871.070208162, 132.5), (1974.070208162, 132.5), (1974.070208162, -132.5), (1871.070208162, -132.5), align=None)
        with Locations((1768.570208162, 5.35672877)):
            Rectangle(MIRROR_3_COPY_10_SKETCH_W, MIRROR_3_COPY_10_SKETCH_H, mode=Mode.SUBTRACT)
        with Locations((1922.570208162, 0)):
            Rectangle(MIRROR_3_COPY_10_SKETCH_W_2, MIRROR_3_COPY_10_SKETCH_H_2, mode=Mode.SUBTRACT)
    extrude(amount=-MIRROR_3_COPY_10_DEPTH, mode=Mode.SUBTRACT)

    # 鏡射3 copy 11 sketch → 鏡射3 copy 11 (cut)
    with BuildSketch(Plane(origin=(0, 20, 0), x_dir=(1, 0, 0), z_dir=(0, 1, 0))):
        with Locations((1922.570208162, 0)):
            Rectangle(MIRROR_3_COPY_11_SKETCH_W, MIRROR_3_COPY_11_SKETCH_H)
        with Locations((1922.570208162, 0)):
            Rectangle(MIRROR_3_COPY_11_SKETCH_W_2, MIRROR_3_COPY_11_SKETCH_H_2, mode=Mode.SUBTRACT)
    extrude(amount=-MIRROR_3_COPY_11_DEPTH, mode=Mode.SUBTRACT)

    # 鏡射3 copy 12 sketch → 鏡射3 copy 12 (cut)
    with BuildSketch(Plane(origin=(0, 15, 0), x_dir=(1, 0, 0), z_dir=(0, 1, 0))):
        with BuildLine():
            ThreePointArc((-1278.454336743, 262.485638384), (-1149.264370393, 6.557696493), (-1278.454336743, -249.370245398))
            Line((-1278.454336743, -249.370245398), (-1278.454336743, -236.829294479))
            ThreePointArc((-1278.454336743, -236.829294479), (-1159.264370393, 6.557696493), (-1278.454336743, 249.944687465))
            Line((-1278.454336743, 249.944687465), (-1278.454336743, 262.485638384))
        make_face()
    extrude(amount=-MIRROR_3_COPY_12_DEPTH, mode=Mode.SUBTRACT)

    # 鏡射3 copy 13 sketch → 鏡射3 copy 13 (cut)
    with BuildSketch(Plane(origin=(0, 15, 0), x_dir=(1, 0, 0), z_dir=(0, 1, 0))):
        Circle(MIRROR_3_COPY_13_SKETCH_R)
        Circle(MIRROR_3_COPY_13_SKETCH_R_2, mode=Mode.SUBTRACT)
    extrude(amount=-MIRROR_3_COPY_13_DEPTH, mode=Mode.SUBTRACT)

    # 鏡射3 copy 14 sketch → 鏡射3 copy 14 (cut)
    with BuildSketch(Plane(origin=(0, 15, 0), x_dir=(1, 0, 0), z_dir=(0, 1, 0))):
        with BuildLine():
            ThreePointArc((-1868.454336743, -1147.192515671), (-1841.094059669, -1160.474906139), (-1831.139490585, -1189.213611964))
            Line((-1831.139490585, -1189.213611964), (-1841.121942258, -1188.621447643))
            ThreePointArc((-1841.121942258, -1188.621447643), (-1848.37548107, -1167.337749028), (-1868.454336743, -1157.216029468))
            Line((-1868.454336743, -1157.216029468), (-1868.454336743, -1147.192515671))
        make_face()
        with BuildLine():
            Line((5, -319.960935116), (5, -1189.213611964))
            Line((5, -1189.213611964), (-5, -1189.213611964))
            Line((-5, -1189.213611964), (-5, -319.960935116))
            ThreePointArc((-5, -319.960935116), (0, -320), (5, -319.960935116))
        make_face()
        with BuildLine():
            Line((5, 309.959674797), (5, -309.959674797))
            ThreePointArc((5, -309.959674797), (0, -310), (-5, -309.959674797))
            Line((-5, -309.959674797), (-5, 309.959674797))
            ThreePointArc((-5, 309.959674797), (0, 310), (5, 309.959674797))
        make_face()
        with BuildLine():
            ThreePointArc((5, 319.960935116), (0, 320), (-5, 319.960935116))
            Line((-5, 319.960935116), (-5, 1199.927069503))
            Line((-5, 1199.927069503), (5, 1199.927069503))
            Line((5, 1199.927069503), (5, 319.960935116))
        make_face()
    extrude(amount=-MIRROR_3_COPY_14_DEPTH, mode=Mode.SUBTRACT)


solid = part.part
